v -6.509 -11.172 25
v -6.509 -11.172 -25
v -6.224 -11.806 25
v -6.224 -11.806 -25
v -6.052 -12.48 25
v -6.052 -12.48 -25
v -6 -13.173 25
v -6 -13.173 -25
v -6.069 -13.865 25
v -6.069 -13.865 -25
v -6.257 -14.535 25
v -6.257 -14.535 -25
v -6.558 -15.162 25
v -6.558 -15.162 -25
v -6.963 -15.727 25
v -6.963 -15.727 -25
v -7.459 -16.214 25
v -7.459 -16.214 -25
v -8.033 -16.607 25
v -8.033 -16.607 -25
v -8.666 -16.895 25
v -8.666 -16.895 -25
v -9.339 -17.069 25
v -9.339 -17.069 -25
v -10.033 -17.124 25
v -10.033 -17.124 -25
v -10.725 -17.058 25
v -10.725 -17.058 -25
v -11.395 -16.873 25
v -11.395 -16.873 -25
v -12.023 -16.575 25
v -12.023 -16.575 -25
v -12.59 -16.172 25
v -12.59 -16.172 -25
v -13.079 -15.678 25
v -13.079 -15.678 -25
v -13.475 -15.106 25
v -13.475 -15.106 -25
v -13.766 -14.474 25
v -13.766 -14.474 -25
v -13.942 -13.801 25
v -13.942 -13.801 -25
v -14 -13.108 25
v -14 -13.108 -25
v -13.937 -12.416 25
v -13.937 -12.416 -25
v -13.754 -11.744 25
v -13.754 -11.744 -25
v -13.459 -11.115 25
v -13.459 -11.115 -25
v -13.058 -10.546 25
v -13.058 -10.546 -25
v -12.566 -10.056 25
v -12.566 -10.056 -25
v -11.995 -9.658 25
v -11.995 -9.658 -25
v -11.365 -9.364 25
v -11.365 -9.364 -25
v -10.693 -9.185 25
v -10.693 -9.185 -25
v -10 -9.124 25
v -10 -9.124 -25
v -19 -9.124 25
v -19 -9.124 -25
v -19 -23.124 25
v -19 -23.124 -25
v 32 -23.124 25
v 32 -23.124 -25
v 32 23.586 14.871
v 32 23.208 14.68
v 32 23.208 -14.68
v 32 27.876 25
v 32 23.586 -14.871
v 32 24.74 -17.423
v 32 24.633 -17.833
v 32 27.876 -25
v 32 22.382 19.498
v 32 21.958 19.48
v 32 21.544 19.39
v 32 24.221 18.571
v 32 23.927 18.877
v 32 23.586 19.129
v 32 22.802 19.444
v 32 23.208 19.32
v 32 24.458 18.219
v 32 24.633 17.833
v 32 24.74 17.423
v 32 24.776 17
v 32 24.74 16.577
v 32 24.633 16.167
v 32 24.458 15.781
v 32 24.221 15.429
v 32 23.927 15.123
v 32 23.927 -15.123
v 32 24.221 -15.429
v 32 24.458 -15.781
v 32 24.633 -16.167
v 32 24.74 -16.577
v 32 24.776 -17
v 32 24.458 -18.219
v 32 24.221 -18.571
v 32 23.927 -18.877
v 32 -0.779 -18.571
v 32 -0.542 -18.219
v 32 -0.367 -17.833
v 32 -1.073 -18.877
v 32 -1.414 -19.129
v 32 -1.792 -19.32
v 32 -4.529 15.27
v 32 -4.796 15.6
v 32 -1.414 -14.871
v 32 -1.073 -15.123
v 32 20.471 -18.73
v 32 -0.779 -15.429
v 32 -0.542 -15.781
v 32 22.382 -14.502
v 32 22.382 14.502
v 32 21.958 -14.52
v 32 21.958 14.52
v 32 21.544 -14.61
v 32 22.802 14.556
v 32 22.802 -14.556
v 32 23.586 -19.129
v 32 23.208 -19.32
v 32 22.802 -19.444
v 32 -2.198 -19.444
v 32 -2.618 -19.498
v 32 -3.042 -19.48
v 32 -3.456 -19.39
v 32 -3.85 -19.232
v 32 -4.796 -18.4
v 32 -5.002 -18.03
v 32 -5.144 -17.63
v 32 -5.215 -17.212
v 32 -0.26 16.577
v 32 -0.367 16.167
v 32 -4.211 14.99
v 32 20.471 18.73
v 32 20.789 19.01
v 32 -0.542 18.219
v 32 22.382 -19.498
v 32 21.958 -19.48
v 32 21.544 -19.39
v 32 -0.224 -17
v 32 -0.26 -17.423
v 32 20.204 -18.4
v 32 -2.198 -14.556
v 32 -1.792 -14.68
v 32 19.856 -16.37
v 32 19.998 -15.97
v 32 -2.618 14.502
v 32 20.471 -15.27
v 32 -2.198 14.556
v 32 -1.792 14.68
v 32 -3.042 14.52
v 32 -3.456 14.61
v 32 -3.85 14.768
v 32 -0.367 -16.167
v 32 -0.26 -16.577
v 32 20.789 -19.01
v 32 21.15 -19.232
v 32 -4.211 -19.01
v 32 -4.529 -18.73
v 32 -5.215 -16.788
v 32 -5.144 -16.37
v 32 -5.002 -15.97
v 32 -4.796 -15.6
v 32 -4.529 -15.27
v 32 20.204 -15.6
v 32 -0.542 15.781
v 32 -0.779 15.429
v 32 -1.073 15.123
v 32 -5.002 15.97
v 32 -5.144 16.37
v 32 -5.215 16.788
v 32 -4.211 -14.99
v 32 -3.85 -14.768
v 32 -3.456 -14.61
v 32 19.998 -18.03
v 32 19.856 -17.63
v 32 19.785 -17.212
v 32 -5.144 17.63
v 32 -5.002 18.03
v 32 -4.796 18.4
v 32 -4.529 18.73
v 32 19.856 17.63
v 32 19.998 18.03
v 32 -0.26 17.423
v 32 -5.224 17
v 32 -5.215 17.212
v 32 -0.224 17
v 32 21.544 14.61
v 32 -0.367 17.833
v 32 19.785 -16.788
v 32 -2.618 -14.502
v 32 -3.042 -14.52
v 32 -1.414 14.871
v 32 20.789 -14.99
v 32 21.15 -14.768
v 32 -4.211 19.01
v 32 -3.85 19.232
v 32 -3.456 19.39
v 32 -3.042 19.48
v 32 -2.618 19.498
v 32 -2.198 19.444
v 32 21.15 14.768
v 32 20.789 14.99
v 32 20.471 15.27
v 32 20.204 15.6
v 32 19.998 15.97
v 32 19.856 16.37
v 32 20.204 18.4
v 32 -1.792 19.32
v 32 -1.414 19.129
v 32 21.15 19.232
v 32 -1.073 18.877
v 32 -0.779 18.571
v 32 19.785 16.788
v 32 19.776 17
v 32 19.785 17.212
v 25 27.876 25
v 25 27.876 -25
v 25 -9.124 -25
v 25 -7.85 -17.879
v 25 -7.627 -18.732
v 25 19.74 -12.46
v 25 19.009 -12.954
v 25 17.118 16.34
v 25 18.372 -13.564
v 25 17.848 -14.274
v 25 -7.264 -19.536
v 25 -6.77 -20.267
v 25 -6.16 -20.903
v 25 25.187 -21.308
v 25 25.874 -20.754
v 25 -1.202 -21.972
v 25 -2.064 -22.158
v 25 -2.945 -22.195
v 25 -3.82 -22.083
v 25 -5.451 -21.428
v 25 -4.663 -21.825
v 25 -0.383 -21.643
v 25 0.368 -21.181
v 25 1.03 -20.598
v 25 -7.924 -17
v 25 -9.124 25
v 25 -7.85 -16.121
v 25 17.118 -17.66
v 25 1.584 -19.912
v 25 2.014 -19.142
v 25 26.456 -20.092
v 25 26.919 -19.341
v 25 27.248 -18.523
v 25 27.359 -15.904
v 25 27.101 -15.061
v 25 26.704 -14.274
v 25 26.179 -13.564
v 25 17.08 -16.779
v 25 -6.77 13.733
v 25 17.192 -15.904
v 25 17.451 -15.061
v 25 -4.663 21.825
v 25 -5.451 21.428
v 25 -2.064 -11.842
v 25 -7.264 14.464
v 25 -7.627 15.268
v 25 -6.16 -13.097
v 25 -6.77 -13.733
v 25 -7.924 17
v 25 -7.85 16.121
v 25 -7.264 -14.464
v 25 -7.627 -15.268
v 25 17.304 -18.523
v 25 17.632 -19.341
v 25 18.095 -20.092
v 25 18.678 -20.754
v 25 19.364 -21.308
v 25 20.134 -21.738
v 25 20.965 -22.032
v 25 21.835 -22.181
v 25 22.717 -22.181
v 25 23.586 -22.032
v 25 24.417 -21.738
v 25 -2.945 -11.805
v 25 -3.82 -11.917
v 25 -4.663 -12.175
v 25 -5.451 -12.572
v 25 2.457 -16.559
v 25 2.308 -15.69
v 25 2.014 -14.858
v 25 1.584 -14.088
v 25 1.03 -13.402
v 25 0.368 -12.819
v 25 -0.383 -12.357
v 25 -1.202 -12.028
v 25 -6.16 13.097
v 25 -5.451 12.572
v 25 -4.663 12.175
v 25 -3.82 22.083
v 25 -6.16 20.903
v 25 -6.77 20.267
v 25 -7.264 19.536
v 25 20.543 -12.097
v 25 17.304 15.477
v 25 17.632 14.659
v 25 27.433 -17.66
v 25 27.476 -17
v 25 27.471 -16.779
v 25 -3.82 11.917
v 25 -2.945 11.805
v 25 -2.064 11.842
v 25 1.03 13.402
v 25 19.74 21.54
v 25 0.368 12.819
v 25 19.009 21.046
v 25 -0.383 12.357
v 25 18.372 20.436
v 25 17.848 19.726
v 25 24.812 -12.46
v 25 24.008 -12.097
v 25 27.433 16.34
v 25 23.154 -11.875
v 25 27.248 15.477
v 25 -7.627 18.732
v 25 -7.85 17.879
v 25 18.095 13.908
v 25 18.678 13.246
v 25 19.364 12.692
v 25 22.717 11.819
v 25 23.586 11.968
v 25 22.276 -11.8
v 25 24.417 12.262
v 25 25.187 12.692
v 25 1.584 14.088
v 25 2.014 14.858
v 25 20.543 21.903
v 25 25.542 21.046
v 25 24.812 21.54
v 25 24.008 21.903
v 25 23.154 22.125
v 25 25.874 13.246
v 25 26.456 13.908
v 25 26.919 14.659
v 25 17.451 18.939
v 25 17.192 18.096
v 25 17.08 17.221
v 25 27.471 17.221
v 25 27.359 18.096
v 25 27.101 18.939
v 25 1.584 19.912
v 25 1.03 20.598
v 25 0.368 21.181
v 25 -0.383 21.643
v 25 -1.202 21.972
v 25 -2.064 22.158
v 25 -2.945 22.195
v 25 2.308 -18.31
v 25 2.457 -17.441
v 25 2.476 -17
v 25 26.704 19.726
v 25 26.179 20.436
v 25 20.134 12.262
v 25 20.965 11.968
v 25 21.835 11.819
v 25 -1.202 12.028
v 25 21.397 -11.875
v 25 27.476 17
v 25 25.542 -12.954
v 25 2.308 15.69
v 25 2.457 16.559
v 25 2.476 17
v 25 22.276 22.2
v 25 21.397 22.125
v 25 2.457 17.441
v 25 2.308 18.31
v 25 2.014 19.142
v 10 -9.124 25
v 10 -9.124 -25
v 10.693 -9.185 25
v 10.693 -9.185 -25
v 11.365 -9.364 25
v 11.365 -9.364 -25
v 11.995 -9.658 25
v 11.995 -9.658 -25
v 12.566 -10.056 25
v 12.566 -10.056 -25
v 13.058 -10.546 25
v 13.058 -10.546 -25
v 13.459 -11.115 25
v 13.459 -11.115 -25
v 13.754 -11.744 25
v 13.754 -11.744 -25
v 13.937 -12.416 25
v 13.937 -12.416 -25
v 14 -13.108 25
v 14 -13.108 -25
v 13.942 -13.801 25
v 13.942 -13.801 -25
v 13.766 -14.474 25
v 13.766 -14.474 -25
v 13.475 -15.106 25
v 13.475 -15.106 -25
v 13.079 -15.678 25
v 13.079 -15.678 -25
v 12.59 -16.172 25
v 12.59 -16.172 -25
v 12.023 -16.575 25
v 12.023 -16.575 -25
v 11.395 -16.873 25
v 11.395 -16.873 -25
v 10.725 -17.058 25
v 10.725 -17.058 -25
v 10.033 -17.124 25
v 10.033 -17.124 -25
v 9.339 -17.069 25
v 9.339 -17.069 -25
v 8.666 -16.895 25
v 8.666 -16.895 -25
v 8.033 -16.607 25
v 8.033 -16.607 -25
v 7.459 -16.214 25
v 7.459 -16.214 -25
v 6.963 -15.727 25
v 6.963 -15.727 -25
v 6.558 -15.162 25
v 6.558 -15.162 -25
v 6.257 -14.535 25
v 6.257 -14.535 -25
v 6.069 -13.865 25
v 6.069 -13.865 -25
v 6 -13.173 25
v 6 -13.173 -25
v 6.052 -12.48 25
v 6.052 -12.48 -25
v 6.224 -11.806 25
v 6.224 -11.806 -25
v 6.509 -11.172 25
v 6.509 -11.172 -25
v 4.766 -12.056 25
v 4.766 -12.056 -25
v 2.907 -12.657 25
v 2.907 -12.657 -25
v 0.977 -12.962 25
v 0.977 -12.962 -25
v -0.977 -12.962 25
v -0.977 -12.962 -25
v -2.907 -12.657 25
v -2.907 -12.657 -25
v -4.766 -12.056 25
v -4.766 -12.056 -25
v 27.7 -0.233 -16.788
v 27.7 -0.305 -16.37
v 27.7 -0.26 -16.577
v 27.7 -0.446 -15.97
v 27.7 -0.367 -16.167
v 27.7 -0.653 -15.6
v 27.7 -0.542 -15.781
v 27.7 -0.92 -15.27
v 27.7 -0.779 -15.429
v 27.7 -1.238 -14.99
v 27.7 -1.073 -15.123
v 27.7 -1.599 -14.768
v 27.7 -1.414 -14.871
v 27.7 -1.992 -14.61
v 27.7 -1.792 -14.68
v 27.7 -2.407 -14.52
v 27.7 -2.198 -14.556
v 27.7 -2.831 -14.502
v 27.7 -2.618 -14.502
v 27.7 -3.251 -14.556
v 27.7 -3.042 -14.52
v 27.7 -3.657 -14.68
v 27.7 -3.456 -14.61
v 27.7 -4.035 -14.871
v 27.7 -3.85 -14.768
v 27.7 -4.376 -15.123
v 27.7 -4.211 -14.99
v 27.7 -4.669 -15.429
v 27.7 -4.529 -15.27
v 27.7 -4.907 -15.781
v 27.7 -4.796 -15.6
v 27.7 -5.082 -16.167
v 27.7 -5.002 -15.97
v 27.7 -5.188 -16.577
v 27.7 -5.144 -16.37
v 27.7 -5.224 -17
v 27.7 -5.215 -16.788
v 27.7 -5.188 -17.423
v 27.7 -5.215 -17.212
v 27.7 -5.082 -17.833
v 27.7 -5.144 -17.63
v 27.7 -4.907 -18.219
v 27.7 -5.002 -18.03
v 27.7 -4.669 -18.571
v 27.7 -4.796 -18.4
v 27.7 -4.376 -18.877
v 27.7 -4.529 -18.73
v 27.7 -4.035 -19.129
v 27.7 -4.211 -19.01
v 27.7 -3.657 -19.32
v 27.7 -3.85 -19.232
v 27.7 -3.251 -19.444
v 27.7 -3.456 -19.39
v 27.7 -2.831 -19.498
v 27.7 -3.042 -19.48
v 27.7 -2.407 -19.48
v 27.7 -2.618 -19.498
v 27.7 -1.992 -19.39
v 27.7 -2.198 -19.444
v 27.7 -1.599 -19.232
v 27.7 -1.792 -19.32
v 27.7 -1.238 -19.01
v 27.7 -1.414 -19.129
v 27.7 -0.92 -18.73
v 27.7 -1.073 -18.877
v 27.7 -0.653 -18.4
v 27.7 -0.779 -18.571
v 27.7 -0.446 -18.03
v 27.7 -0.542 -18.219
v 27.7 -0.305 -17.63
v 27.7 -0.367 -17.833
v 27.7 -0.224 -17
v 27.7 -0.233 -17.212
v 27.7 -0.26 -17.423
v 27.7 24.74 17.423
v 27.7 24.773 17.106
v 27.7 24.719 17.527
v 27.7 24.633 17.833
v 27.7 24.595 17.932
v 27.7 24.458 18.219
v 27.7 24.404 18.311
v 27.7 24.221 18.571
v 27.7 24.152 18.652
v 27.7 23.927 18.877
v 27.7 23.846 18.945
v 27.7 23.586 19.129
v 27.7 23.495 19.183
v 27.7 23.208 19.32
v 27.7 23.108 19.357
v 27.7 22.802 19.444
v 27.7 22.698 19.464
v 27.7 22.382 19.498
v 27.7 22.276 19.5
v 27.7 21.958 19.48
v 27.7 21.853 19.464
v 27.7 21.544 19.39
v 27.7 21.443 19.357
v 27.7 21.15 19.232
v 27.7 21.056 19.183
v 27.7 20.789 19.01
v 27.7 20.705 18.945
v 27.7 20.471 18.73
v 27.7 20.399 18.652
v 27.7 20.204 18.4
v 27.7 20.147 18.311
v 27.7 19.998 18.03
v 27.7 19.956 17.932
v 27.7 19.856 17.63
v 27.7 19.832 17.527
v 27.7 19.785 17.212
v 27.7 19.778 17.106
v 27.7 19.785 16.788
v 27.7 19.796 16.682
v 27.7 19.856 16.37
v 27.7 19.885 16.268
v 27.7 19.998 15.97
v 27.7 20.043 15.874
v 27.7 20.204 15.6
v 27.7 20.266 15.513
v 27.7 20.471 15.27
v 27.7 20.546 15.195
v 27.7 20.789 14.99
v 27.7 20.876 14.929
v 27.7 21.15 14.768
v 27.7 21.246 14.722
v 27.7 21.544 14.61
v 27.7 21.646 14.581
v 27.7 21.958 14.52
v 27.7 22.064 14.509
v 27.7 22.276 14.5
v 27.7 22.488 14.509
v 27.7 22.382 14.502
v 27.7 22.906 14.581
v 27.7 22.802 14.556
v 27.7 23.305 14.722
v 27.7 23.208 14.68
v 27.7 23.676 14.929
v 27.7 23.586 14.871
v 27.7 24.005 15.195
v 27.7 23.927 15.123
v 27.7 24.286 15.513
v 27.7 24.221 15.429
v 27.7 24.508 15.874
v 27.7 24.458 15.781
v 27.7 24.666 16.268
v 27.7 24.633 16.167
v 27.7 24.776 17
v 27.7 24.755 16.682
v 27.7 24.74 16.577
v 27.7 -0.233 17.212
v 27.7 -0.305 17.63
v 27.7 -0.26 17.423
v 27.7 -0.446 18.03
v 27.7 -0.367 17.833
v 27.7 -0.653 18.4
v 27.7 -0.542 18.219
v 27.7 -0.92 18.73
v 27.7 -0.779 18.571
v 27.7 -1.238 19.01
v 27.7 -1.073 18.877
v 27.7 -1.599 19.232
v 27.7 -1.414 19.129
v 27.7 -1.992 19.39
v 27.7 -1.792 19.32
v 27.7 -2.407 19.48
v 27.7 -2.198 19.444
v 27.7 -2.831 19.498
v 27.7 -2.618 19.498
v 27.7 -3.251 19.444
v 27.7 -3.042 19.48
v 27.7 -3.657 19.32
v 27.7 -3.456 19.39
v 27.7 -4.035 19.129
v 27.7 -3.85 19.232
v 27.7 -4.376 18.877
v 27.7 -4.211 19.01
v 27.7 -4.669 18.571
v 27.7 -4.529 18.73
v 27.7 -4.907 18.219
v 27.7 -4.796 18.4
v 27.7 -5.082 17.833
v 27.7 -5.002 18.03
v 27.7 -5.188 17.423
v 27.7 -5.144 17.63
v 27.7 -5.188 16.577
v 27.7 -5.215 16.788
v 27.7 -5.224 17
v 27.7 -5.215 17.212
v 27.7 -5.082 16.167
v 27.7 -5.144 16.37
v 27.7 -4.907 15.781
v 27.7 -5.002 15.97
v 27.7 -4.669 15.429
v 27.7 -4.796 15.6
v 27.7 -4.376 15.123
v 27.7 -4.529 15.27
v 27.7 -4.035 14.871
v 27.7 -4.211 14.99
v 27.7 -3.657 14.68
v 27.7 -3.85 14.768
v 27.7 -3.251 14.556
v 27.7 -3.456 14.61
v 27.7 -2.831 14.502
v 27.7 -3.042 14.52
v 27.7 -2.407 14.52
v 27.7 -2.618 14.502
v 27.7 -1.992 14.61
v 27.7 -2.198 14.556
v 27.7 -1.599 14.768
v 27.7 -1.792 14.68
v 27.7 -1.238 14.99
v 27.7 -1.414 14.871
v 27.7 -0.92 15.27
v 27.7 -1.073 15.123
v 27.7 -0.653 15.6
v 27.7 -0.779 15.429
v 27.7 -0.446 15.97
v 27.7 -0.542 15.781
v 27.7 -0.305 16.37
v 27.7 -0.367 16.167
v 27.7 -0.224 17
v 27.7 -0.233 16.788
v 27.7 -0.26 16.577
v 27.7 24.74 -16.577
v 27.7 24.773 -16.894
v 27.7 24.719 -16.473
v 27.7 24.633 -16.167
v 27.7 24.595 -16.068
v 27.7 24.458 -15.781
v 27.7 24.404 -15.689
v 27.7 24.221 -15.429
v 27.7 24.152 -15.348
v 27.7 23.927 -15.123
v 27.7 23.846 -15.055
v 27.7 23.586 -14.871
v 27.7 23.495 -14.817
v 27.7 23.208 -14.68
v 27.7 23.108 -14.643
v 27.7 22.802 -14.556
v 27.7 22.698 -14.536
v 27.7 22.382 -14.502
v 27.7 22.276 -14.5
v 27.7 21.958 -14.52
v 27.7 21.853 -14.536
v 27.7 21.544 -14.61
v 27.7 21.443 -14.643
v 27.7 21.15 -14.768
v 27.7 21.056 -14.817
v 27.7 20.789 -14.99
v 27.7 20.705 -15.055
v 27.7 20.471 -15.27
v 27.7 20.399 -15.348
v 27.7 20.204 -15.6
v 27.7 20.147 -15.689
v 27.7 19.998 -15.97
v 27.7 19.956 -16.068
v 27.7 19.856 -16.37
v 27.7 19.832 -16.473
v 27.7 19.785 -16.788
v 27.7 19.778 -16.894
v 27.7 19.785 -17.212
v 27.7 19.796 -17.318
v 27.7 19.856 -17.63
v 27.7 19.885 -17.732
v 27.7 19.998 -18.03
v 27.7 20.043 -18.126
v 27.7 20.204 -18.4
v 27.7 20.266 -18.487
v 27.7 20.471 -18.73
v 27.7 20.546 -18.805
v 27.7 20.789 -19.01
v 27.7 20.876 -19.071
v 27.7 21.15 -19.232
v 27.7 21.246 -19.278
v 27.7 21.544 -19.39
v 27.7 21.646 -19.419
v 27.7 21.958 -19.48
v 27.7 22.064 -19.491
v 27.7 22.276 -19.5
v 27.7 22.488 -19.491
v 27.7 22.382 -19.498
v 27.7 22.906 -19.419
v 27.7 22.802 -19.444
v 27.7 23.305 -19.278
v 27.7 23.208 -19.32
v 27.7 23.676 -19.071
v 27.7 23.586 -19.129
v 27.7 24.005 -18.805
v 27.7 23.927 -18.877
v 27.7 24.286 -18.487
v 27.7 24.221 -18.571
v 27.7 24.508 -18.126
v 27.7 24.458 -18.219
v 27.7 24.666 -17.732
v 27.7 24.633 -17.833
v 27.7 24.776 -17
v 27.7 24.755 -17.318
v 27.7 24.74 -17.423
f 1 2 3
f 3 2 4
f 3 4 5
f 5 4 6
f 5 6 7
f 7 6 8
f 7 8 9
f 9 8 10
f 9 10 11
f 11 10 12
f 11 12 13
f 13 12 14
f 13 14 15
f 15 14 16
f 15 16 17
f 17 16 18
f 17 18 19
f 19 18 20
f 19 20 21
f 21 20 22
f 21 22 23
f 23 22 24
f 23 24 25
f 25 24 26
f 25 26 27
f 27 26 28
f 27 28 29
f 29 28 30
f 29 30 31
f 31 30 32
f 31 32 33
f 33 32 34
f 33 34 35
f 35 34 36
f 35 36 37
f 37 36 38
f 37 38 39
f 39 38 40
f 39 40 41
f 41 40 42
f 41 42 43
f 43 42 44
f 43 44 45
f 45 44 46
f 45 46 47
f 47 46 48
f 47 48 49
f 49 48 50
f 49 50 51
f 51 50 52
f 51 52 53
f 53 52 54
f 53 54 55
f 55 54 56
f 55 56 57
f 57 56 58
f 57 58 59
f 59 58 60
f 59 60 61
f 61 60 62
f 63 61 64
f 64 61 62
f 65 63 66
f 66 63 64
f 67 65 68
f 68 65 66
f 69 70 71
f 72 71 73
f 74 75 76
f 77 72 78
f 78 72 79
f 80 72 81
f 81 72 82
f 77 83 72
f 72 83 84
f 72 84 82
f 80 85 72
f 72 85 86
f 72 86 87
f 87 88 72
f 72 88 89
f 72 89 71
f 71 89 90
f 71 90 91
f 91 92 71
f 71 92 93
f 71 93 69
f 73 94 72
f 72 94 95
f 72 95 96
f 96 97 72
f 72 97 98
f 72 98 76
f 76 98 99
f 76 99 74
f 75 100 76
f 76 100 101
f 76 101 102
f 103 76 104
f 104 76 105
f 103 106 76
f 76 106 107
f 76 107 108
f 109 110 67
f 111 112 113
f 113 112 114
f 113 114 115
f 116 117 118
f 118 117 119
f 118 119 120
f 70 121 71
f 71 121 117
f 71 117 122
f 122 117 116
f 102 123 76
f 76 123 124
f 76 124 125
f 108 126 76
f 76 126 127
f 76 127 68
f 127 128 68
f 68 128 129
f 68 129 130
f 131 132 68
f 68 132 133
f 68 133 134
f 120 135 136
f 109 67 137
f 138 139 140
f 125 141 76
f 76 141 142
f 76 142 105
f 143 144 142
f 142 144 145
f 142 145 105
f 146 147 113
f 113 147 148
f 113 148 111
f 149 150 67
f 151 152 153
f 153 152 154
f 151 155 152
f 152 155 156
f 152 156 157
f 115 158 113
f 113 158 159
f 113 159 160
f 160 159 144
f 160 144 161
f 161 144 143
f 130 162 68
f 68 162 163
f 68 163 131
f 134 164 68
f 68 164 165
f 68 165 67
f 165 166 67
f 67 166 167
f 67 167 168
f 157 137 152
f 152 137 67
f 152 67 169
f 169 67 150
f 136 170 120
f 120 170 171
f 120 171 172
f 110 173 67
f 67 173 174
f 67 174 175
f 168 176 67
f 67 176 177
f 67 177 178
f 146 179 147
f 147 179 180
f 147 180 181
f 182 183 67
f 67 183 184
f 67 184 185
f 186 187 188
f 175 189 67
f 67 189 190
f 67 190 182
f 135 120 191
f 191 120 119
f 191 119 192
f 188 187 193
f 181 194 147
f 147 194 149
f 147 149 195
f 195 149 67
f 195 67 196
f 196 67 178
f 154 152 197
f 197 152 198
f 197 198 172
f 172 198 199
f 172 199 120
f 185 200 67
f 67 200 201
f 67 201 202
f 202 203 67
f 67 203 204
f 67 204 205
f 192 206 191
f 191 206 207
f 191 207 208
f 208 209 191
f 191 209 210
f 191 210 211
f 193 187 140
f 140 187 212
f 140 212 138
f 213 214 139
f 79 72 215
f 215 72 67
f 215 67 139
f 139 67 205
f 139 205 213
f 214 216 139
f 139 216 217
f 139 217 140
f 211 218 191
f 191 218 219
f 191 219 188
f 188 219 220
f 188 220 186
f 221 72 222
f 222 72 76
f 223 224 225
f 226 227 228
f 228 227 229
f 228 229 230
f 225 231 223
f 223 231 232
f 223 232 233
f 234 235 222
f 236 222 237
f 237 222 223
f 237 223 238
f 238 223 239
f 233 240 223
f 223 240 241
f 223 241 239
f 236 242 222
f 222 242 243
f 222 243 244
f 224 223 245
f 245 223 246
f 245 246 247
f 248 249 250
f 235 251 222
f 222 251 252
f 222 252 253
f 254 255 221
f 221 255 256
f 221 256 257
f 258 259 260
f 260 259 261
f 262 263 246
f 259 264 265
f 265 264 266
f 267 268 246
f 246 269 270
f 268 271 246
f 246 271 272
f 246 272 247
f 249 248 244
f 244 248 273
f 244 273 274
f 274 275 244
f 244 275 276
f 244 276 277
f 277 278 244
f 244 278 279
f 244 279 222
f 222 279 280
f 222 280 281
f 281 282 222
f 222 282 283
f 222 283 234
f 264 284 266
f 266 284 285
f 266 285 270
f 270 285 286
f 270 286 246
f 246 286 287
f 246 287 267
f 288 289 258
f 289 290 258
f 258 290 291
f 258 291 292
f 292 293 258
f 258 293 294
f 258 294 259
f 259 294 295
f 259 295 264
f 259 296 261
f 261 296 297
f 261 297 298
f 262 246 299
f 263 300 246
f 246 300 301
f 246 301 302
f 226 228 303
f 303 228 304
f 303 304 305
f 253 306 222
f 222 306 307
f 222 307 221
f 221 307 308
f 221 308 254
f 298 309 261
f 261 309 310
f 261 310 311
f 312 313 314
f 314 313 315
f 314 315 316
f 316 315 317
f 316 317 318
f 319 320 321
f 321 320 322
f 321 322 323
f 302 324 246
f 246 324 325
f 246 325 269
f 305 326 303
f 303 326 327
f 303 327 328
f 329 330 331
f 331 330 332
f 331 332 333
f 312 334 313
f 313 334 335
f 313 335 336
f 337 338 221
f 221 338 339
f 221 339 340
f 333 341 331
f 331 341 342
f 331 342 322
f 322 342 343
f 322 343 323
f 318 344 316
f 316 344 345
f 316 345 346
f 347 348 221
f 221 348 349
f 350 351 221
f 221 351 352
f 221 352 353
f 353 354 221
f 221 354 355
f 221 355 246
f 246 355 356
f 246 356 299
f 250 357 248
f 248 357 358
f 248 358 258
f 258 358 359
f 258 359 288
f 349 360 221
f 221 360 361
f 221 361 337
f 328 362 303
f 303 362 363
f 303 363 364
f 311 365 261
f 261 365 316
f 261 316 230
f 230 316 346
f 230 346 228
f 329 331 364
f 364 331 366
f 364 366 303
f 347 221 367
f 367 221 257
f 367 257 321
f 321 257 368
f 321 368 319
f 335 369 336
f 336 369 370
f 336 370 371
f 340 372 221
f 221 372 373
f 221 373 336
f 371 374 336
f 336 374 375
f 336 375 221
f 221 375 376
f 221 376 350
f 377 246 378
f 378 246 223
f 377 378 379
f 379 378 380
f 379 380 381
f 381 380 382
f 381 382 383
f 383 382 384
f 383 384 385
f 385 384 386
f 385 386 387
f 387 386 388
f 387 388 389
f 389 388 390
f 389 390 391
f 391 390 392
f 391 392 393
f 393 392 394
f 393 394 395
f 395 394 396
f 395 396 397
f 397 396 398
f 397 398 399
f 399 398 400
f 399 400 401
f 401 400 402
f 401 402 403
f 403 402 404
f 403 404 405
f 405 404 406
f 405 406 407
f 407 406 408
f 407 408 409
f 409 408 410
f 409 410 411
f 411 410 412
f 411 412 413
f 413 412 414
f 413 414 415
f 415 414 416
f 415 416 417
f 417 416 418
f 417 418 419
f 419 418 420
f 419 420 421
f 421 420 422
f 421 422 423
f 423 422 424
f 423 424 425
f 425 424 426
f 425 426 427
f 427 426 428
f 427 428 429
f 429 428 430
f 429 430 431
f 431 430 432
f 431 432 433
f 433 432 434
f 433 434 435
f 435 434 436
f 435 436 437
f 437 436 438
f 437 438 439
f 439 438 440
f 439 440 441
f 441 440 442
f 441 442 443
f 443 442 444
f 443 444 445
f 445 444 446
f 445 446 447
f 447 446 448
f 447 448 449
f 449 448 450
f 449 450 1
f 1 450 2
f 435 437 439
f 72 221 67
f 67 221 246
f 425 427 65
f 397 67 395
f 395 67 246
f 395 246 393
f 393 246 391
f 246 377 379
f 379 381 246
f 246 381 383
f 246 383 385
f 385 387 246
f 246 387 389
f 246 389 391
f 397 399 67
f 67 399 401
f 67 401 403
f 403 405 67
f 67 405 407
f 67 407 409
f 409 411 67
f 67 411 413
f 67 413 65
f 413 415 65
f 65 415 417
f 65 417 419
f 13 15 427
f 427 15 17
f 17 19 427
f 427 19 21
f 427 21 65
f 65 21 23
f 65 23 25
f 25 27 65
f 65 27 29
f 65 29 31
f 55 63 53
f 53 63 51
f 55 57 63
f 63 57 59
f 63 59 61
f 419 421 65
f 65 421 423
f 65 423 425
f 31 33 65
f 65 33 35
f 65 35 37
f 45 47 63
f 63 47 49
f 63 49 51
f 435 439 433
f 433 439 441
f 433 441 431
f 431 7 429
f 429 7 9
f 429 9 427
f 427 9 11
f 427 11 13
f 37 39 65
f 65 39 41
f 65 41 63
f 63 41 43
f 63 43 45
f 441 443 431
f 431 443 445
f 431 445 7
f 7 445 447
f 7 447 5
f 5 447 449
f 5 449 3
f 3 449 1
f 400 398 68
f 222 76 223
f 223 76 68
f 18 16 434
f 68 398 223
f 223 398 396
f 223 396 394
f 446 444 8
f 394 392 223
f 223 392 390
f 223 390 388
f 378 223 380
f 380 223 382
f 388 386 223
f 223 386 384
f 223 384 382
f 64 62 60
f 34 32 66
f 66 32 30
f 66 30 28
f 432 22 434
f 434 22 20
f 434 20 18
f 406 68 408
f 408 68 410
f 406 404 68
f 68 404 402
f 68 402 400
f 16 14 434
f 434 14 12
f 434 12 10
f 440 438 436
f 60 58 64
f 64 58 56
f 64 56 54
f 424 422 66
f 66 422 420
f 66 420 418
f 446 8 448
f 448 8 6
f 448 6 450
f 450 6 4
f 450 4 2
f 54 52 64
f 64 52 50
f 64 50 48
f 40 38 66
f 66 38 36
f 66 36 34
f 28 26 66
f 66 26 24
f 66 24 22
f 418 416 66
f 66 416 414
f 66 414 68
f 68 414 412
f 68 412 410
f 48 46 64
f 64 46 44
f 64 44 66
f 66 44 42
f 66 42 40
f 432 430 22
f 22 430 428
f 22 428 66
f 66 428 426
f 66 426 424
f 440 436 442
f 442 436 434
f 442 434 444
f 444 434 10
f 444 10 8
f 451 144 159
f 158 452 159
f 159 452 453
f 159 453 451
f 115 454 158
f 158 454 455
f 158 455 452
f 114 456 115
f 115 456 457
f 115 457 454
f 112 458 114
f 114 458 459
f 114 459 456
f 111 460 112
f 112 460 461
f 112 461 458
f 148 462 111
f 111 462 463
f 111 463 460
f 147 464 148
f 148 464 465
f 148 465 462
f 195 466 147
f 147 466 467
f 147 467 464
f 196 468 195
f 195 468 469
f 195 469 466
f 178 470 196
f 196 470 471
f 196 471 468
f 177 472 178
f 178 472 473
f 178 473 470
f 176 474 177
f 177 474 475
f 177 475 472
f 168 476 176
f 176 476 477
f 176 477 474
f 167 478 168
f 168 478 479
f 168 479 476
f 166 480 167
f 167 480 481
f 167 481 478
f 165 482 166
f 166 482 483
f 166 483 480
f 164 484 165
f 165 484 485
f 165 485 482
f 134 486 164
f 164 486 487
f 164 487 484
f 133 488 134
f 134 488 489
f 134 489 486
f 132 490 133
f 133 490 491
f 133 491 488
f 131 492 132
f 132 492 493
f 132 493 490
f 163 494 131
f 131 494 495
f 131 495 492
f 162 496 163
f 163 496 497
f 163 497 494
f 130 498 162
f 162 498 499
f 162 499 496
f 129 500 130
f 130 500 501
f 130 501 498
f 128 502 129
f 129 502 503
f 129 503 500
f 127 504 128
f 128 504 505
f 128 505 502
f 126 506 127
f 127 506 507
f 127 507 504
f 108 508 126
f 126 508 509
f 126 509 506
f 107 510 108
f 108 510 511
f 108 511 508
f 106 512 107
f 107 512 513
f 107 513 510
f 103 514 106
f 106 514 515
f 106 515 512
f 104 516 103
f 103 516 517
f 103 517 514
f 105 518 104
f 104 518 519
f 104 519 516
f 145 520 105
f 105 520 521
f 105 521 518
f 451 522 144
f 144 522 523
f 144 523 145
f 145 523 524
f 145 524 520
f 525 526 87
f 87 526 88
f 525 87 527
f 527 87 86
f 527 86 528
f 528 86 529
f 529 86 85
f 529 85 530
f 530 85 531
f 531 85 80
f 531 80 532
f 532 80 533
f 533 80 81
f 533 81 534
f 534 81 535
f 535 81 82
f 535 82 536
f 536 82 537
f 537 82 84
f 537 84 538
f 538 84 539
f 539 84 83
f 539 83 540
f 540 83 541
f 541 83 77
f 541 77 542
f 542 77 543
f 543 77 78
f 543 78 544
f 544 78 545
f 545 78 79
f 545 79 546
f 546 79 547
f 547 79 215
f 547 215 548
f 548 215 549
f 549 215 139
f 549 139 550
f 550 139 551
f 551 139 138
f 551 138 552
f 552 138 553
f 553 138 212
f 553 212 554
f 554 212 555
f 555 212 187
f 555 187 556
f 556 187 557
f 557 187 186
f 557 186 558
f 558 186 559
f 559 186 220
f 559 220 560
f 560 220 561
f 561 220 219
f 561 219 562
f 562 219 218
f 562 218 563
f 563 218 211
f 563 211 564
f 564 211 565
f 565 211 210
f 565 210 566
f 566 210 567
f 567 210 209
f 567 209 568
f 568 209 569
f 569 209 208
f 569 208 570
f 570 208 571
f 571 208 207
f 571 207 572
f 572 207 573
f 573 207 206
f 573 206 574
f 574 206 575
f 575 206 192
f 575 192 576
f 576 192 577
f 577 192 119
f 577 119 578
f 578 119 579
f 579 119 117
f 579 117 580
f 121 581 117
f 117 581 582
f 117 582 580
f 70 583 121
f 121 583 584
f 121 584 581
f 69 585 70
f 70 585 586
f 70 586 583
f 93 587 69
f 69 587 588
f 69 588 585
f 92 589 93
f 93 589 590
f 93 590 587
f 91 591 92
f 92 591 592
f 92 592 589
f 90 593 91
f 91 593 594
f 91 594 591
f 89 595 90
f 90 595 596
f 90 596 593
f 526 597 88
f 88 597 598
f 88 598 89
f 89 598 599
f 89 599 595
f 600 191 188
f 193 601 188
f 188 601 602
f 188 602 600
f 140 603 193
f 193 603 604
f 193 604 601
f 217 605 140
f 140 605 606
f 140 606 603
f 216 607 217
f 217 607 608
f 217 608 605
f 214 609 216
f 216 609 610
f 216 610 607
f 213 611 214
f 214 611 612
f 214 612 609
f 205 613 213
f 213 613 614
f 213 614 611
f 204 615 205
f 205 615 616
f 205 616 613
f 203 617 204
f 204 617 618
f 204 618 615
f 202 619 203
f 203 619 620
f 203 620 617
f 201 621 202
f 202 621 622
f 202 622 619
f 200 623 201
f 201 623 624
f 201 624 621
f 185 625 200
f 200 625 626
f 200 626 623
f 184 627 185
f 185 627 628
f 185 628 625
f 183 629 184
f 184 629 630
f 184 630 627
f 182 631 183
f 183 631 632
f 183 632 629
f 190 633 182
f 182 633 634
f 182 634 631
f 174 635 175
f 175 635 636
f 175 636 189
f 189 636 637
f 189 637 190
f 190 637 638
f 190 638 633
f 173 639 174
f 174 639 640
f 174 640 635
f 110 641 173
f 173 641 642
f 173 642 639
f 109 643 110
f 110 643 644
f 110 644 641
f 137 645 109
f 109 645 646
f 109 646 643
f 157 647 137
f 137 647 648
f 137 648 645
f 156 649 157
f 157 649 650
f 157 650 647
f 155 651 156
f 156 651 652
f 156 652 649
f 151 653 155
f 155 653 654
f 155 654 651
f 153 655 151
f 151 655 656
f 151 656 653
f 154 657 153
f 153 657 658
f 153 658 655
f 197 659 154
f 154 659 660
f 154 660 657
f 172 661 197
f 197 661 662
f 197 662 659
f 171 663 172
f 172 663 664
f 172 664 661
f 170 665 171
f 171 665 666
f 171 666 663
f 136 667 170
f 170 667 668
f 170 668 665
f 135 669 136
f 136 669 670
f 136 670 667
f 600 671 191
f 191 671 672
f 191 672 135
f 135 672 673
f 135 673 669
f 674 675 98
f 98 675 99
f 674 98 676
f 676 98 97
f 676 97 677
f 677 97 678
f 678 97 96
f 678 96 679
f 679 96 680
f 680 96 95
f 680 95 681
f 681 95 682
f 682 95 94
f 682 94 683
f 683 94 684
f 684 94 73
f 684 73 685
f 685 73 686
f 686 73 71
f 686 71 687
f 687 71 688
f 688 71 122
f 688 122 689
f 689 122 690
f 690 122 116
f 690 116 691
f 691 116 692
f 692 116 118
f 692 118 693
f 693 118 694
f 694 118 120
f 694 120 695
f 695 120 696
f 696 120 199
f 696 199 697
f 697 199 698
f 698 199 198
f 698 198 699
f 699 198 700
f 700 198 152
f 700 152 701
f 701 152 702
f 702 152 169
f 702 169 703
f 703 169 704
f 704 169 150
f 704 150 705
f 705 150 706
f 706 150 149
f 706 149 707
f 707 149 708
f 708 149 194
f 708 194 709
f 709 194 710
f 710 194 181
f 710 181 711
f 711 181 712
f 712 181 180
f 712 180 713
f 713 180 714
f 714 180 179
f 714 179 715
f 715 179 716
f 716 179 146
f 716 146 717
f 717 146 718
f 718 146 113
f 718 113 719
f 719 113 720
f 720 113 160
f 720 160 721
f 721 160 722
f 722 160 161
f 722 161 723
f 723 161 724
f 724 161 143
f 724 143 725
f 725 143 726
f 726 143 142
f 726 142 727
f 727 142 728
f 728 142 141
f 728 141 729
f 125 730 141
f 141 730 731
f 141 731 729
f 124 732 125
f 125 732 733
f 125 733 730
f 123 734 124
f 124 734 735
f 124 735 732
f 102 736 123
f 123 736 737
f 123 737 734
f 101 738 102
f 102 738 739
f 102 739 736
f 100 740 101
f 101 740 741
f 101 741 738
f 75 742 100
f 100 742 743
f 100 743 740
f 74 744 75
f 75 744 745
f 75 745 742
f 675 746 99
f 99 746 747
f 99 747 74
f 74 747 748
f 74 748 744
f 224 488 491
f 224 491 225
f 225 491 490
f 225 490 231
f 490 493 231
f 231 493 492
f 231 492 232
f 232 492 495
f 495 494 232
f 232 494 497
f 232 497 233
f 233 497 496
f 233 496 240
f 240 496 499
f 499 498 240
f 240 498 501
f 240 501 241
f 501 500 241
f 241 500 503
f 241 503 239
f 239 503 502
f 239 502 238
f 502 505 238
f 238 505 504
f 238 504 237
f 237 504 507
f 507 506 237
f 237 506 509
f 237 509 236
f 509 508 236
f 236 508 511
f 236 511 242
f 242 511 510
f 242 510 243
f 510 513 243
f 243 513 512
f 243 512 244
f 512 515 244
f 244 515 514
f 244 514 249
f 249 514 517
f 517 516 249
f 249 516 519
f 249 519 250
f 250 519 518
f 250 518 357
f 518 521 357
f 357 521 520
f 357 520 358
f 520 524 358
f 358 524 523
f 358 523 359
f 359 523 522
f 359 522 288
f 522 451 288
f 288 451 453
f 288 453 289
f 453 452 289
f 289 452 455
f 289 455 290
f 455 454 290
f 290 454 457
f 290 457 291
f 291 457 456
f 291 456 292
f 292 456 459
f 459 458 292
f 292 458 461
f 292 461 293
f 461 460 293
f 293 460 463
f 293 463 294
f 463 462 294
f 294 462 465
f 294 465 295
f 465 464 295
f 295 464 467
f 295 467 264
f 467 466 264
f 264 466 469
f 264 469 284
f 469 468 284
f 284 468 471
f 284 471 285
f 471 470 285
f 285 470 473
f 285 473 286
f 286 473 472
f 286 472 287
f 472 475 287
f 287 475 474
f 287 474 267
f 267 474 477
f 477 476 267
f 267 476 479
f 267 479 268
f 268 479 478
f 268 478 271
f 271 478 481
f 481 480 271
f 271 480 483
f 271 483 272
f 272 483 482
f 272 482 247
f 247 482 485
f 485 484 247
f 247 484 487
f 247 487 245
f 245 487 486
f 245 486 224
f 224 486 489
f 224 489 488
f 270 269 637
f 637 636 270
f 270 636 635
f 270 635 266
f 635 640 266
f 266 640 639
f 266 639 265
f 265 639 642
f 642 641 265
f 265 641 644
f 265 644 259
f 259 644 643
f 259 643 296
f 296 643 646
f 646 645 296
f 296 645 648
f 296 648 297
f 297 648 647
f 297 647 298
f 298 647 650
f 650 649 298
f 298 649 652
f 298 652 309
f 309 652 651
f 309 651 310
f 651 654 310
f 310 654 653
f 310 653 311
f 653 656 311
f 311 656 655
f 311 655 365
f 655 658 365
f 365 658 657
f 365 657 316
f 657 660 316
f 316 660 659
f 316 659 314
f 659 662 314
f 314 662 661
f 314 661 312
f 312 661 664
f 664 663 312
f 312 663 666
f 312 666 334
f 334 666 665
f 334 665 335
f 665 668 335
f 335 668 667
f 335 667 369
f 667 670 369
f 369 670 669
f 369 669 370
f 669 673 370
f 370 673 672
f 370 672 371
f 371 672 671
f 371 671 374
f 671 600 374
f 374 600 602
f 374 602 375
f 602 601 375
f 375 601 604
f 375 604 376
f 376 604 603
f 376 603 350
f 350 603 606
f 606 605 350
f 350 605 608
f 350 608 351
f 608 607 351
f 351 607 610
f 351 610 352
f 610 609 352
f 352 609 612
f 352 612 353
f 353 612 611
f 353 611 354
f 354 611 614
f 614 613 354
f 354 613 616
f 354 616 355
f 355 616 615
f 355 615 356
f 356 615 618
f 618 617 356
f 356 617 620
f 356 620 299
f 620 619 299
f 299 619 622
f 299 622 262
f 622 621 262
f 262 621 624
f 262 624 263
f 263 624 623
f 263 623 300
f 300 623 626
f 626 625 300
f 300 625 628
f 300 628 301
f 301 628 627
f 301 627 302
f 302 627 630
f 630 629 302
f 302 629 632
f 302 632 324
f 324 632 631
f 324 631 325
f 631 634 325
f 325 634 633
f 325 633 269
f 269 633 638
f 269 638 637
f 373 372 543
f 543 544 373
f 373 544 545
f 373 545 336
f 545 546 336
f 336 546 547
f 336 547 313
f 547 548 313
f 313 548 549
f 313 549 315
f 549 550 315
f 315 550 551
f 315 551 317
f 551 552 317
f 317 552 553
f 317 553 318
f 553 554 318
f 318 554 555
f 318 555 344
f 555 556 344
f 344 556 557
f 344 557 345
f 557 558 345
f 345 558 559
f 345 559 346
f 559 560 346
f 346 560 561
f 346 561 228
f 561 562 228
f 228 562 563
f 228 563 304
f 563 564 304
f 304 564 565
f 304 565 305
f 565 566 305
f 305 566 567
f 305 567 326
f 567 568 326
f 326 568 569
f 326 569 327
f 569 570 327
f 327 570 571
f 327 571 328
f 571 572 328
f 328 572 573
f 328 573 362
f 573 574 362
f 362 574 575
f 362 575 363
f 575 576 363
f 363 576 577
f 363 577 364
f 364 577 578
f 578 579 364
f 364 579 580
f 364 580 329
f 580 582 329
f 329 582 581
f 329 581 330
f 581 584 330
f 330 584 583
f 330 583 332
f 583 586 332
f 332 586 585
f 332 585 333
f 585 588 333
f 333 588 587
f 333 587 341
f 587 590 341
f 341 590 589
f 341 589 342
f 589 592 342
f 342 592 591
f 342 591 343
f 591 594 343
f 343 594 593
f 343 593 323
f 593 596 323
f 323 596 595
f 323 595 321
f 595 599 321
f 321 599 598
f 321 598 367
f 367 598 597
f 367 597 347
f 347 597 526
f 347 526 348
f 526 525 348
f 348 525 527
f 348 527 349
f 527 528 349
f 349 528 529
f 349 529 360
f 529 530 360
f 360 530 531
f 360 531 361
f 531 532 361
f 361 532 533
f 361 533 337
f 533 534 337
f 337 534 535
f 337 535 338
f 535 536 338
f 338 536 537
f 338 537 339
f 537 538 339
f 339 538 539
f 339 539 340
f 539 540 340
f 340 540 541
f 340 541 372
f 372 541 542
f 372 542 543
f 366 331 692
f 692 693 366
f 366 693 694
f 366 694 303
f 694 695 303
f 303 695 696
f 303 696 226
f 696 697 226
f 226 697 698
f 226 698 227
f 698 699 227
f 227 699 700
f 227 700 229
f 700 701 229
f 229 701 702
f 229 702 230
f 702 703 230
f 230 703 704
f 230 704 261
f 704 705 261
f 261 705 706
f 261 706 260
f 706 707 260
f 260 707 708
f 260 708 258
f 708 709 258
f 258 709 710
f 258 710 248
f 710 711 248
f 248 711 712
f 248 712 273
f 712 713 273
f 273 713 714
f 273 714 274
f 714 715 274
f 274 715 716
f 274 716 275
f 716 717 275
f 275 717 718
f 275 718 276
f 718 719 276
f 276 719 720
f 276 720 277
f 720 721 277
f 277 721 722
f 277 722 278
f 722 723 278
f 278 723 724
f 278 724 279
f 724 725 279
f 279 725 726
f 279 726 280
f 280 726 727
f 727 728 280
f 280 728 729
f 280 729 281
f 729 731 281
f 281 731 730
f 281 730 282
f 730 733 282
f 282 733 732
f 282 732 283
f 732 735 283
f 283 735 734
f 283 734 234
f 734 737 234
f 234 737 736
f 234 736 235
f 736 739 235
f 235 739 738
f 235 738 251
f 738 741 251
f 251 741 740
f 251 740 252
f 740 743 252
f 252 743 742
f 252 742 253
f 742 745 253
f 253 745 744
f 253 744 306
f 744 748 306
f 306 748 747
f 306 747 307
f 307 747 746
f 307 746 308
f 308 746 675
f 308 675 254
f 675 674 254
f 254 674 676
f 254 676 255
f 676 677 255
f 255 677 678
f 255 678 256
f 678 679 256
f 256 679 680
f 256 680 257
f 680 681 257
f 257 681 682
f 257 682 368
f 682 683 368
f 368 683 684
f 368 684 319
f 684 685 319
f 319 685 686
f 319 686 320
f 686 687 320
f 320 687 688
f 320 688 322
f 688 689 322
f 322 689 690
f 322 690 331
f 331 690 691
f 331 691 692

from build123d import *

# Parameters (mm, degrees)
BOSS_EXTRUDE1_DEPTH = 25
SKETCH5_R           = 2.5
CUT_EXTRUDE4_DEPTH  = 90
CHAMFER1_SIZE       = 2.7


with BuildPart() as part:
    # Sketch1 → Boss-Extrude1 (new, symmetric)
    with BuildSketch(Plane.XY):
        with BuildLine():
            Line((-10, -9.124404748), (-19, -9.124404748))
            Line((-19, -9.124404748), (-19, -23.124404748))
            Line((-19, -23.124404748), (32, -23.124404748))
            Line((32, -23.124404748), (32, 27.875595252))
            Line((32, 27.875595252), (25, 27.875595252))
            Line((25, 27.875595252), (25, -9.124404748))
            Line((25, -9.124404748), (10, -9.124404748))
            ThreePointArc((10, -9.124404748), (12.023420987, -16.574878268), (6.509119733, -11.171520993))
            ThreePointArc((6.509119733, -11.171520993), (0, -13), (-6.509119733, -11.171520993))
            ThreePointArc((-6.509119733, -11.171520993), (-12.023420987, -16.574878268), (-10, -9.124404748))
        make_face()
    extrude(amount=BOSS_EXTRUDE1_DEPTH, both=True)

    # Sketch5 → Cut-Extrude4 (cut)
    with BuildSketch(Plane(origin=(32, 0, 0), x_dir=(0, 0, -1), z_dir=(1, 0, 0))):
        with Locations(Location((17, -2.724404748, 0), (0, 0, 90))):
            Circle(SKETCH5_R)
        with Locations(Location((17, 22.275595252, 0), (0, 0, 90))):
            Circle(SKETCH5_R)
        with Locations(Location((-17, -2.724404748, 0), (0, 0, 90))):
            Circle(SKETCH5_R)
        with Locations(Location((-17, 22.275595252, 0), (0, 0, 90))):
            Circle(SKETCH5_R)
    extrude(amount=-CUT_EXTRUDE4_DEPTH, mode=Mode.SUBTRACT)

    # Chamfer1
    chamfer1_edges = [part.edges().sort_by_distance(p)[0] for p in [
        (25, 19.775595252, -17),
        (25, -5.224404748, 17),
        (25, 19.775595252, 17),
        (25, -5.224404748, -17),
    ]]
    chamfer(chamfer1_edges, length=CHAMFER1_SIZE)


solid = part.part
